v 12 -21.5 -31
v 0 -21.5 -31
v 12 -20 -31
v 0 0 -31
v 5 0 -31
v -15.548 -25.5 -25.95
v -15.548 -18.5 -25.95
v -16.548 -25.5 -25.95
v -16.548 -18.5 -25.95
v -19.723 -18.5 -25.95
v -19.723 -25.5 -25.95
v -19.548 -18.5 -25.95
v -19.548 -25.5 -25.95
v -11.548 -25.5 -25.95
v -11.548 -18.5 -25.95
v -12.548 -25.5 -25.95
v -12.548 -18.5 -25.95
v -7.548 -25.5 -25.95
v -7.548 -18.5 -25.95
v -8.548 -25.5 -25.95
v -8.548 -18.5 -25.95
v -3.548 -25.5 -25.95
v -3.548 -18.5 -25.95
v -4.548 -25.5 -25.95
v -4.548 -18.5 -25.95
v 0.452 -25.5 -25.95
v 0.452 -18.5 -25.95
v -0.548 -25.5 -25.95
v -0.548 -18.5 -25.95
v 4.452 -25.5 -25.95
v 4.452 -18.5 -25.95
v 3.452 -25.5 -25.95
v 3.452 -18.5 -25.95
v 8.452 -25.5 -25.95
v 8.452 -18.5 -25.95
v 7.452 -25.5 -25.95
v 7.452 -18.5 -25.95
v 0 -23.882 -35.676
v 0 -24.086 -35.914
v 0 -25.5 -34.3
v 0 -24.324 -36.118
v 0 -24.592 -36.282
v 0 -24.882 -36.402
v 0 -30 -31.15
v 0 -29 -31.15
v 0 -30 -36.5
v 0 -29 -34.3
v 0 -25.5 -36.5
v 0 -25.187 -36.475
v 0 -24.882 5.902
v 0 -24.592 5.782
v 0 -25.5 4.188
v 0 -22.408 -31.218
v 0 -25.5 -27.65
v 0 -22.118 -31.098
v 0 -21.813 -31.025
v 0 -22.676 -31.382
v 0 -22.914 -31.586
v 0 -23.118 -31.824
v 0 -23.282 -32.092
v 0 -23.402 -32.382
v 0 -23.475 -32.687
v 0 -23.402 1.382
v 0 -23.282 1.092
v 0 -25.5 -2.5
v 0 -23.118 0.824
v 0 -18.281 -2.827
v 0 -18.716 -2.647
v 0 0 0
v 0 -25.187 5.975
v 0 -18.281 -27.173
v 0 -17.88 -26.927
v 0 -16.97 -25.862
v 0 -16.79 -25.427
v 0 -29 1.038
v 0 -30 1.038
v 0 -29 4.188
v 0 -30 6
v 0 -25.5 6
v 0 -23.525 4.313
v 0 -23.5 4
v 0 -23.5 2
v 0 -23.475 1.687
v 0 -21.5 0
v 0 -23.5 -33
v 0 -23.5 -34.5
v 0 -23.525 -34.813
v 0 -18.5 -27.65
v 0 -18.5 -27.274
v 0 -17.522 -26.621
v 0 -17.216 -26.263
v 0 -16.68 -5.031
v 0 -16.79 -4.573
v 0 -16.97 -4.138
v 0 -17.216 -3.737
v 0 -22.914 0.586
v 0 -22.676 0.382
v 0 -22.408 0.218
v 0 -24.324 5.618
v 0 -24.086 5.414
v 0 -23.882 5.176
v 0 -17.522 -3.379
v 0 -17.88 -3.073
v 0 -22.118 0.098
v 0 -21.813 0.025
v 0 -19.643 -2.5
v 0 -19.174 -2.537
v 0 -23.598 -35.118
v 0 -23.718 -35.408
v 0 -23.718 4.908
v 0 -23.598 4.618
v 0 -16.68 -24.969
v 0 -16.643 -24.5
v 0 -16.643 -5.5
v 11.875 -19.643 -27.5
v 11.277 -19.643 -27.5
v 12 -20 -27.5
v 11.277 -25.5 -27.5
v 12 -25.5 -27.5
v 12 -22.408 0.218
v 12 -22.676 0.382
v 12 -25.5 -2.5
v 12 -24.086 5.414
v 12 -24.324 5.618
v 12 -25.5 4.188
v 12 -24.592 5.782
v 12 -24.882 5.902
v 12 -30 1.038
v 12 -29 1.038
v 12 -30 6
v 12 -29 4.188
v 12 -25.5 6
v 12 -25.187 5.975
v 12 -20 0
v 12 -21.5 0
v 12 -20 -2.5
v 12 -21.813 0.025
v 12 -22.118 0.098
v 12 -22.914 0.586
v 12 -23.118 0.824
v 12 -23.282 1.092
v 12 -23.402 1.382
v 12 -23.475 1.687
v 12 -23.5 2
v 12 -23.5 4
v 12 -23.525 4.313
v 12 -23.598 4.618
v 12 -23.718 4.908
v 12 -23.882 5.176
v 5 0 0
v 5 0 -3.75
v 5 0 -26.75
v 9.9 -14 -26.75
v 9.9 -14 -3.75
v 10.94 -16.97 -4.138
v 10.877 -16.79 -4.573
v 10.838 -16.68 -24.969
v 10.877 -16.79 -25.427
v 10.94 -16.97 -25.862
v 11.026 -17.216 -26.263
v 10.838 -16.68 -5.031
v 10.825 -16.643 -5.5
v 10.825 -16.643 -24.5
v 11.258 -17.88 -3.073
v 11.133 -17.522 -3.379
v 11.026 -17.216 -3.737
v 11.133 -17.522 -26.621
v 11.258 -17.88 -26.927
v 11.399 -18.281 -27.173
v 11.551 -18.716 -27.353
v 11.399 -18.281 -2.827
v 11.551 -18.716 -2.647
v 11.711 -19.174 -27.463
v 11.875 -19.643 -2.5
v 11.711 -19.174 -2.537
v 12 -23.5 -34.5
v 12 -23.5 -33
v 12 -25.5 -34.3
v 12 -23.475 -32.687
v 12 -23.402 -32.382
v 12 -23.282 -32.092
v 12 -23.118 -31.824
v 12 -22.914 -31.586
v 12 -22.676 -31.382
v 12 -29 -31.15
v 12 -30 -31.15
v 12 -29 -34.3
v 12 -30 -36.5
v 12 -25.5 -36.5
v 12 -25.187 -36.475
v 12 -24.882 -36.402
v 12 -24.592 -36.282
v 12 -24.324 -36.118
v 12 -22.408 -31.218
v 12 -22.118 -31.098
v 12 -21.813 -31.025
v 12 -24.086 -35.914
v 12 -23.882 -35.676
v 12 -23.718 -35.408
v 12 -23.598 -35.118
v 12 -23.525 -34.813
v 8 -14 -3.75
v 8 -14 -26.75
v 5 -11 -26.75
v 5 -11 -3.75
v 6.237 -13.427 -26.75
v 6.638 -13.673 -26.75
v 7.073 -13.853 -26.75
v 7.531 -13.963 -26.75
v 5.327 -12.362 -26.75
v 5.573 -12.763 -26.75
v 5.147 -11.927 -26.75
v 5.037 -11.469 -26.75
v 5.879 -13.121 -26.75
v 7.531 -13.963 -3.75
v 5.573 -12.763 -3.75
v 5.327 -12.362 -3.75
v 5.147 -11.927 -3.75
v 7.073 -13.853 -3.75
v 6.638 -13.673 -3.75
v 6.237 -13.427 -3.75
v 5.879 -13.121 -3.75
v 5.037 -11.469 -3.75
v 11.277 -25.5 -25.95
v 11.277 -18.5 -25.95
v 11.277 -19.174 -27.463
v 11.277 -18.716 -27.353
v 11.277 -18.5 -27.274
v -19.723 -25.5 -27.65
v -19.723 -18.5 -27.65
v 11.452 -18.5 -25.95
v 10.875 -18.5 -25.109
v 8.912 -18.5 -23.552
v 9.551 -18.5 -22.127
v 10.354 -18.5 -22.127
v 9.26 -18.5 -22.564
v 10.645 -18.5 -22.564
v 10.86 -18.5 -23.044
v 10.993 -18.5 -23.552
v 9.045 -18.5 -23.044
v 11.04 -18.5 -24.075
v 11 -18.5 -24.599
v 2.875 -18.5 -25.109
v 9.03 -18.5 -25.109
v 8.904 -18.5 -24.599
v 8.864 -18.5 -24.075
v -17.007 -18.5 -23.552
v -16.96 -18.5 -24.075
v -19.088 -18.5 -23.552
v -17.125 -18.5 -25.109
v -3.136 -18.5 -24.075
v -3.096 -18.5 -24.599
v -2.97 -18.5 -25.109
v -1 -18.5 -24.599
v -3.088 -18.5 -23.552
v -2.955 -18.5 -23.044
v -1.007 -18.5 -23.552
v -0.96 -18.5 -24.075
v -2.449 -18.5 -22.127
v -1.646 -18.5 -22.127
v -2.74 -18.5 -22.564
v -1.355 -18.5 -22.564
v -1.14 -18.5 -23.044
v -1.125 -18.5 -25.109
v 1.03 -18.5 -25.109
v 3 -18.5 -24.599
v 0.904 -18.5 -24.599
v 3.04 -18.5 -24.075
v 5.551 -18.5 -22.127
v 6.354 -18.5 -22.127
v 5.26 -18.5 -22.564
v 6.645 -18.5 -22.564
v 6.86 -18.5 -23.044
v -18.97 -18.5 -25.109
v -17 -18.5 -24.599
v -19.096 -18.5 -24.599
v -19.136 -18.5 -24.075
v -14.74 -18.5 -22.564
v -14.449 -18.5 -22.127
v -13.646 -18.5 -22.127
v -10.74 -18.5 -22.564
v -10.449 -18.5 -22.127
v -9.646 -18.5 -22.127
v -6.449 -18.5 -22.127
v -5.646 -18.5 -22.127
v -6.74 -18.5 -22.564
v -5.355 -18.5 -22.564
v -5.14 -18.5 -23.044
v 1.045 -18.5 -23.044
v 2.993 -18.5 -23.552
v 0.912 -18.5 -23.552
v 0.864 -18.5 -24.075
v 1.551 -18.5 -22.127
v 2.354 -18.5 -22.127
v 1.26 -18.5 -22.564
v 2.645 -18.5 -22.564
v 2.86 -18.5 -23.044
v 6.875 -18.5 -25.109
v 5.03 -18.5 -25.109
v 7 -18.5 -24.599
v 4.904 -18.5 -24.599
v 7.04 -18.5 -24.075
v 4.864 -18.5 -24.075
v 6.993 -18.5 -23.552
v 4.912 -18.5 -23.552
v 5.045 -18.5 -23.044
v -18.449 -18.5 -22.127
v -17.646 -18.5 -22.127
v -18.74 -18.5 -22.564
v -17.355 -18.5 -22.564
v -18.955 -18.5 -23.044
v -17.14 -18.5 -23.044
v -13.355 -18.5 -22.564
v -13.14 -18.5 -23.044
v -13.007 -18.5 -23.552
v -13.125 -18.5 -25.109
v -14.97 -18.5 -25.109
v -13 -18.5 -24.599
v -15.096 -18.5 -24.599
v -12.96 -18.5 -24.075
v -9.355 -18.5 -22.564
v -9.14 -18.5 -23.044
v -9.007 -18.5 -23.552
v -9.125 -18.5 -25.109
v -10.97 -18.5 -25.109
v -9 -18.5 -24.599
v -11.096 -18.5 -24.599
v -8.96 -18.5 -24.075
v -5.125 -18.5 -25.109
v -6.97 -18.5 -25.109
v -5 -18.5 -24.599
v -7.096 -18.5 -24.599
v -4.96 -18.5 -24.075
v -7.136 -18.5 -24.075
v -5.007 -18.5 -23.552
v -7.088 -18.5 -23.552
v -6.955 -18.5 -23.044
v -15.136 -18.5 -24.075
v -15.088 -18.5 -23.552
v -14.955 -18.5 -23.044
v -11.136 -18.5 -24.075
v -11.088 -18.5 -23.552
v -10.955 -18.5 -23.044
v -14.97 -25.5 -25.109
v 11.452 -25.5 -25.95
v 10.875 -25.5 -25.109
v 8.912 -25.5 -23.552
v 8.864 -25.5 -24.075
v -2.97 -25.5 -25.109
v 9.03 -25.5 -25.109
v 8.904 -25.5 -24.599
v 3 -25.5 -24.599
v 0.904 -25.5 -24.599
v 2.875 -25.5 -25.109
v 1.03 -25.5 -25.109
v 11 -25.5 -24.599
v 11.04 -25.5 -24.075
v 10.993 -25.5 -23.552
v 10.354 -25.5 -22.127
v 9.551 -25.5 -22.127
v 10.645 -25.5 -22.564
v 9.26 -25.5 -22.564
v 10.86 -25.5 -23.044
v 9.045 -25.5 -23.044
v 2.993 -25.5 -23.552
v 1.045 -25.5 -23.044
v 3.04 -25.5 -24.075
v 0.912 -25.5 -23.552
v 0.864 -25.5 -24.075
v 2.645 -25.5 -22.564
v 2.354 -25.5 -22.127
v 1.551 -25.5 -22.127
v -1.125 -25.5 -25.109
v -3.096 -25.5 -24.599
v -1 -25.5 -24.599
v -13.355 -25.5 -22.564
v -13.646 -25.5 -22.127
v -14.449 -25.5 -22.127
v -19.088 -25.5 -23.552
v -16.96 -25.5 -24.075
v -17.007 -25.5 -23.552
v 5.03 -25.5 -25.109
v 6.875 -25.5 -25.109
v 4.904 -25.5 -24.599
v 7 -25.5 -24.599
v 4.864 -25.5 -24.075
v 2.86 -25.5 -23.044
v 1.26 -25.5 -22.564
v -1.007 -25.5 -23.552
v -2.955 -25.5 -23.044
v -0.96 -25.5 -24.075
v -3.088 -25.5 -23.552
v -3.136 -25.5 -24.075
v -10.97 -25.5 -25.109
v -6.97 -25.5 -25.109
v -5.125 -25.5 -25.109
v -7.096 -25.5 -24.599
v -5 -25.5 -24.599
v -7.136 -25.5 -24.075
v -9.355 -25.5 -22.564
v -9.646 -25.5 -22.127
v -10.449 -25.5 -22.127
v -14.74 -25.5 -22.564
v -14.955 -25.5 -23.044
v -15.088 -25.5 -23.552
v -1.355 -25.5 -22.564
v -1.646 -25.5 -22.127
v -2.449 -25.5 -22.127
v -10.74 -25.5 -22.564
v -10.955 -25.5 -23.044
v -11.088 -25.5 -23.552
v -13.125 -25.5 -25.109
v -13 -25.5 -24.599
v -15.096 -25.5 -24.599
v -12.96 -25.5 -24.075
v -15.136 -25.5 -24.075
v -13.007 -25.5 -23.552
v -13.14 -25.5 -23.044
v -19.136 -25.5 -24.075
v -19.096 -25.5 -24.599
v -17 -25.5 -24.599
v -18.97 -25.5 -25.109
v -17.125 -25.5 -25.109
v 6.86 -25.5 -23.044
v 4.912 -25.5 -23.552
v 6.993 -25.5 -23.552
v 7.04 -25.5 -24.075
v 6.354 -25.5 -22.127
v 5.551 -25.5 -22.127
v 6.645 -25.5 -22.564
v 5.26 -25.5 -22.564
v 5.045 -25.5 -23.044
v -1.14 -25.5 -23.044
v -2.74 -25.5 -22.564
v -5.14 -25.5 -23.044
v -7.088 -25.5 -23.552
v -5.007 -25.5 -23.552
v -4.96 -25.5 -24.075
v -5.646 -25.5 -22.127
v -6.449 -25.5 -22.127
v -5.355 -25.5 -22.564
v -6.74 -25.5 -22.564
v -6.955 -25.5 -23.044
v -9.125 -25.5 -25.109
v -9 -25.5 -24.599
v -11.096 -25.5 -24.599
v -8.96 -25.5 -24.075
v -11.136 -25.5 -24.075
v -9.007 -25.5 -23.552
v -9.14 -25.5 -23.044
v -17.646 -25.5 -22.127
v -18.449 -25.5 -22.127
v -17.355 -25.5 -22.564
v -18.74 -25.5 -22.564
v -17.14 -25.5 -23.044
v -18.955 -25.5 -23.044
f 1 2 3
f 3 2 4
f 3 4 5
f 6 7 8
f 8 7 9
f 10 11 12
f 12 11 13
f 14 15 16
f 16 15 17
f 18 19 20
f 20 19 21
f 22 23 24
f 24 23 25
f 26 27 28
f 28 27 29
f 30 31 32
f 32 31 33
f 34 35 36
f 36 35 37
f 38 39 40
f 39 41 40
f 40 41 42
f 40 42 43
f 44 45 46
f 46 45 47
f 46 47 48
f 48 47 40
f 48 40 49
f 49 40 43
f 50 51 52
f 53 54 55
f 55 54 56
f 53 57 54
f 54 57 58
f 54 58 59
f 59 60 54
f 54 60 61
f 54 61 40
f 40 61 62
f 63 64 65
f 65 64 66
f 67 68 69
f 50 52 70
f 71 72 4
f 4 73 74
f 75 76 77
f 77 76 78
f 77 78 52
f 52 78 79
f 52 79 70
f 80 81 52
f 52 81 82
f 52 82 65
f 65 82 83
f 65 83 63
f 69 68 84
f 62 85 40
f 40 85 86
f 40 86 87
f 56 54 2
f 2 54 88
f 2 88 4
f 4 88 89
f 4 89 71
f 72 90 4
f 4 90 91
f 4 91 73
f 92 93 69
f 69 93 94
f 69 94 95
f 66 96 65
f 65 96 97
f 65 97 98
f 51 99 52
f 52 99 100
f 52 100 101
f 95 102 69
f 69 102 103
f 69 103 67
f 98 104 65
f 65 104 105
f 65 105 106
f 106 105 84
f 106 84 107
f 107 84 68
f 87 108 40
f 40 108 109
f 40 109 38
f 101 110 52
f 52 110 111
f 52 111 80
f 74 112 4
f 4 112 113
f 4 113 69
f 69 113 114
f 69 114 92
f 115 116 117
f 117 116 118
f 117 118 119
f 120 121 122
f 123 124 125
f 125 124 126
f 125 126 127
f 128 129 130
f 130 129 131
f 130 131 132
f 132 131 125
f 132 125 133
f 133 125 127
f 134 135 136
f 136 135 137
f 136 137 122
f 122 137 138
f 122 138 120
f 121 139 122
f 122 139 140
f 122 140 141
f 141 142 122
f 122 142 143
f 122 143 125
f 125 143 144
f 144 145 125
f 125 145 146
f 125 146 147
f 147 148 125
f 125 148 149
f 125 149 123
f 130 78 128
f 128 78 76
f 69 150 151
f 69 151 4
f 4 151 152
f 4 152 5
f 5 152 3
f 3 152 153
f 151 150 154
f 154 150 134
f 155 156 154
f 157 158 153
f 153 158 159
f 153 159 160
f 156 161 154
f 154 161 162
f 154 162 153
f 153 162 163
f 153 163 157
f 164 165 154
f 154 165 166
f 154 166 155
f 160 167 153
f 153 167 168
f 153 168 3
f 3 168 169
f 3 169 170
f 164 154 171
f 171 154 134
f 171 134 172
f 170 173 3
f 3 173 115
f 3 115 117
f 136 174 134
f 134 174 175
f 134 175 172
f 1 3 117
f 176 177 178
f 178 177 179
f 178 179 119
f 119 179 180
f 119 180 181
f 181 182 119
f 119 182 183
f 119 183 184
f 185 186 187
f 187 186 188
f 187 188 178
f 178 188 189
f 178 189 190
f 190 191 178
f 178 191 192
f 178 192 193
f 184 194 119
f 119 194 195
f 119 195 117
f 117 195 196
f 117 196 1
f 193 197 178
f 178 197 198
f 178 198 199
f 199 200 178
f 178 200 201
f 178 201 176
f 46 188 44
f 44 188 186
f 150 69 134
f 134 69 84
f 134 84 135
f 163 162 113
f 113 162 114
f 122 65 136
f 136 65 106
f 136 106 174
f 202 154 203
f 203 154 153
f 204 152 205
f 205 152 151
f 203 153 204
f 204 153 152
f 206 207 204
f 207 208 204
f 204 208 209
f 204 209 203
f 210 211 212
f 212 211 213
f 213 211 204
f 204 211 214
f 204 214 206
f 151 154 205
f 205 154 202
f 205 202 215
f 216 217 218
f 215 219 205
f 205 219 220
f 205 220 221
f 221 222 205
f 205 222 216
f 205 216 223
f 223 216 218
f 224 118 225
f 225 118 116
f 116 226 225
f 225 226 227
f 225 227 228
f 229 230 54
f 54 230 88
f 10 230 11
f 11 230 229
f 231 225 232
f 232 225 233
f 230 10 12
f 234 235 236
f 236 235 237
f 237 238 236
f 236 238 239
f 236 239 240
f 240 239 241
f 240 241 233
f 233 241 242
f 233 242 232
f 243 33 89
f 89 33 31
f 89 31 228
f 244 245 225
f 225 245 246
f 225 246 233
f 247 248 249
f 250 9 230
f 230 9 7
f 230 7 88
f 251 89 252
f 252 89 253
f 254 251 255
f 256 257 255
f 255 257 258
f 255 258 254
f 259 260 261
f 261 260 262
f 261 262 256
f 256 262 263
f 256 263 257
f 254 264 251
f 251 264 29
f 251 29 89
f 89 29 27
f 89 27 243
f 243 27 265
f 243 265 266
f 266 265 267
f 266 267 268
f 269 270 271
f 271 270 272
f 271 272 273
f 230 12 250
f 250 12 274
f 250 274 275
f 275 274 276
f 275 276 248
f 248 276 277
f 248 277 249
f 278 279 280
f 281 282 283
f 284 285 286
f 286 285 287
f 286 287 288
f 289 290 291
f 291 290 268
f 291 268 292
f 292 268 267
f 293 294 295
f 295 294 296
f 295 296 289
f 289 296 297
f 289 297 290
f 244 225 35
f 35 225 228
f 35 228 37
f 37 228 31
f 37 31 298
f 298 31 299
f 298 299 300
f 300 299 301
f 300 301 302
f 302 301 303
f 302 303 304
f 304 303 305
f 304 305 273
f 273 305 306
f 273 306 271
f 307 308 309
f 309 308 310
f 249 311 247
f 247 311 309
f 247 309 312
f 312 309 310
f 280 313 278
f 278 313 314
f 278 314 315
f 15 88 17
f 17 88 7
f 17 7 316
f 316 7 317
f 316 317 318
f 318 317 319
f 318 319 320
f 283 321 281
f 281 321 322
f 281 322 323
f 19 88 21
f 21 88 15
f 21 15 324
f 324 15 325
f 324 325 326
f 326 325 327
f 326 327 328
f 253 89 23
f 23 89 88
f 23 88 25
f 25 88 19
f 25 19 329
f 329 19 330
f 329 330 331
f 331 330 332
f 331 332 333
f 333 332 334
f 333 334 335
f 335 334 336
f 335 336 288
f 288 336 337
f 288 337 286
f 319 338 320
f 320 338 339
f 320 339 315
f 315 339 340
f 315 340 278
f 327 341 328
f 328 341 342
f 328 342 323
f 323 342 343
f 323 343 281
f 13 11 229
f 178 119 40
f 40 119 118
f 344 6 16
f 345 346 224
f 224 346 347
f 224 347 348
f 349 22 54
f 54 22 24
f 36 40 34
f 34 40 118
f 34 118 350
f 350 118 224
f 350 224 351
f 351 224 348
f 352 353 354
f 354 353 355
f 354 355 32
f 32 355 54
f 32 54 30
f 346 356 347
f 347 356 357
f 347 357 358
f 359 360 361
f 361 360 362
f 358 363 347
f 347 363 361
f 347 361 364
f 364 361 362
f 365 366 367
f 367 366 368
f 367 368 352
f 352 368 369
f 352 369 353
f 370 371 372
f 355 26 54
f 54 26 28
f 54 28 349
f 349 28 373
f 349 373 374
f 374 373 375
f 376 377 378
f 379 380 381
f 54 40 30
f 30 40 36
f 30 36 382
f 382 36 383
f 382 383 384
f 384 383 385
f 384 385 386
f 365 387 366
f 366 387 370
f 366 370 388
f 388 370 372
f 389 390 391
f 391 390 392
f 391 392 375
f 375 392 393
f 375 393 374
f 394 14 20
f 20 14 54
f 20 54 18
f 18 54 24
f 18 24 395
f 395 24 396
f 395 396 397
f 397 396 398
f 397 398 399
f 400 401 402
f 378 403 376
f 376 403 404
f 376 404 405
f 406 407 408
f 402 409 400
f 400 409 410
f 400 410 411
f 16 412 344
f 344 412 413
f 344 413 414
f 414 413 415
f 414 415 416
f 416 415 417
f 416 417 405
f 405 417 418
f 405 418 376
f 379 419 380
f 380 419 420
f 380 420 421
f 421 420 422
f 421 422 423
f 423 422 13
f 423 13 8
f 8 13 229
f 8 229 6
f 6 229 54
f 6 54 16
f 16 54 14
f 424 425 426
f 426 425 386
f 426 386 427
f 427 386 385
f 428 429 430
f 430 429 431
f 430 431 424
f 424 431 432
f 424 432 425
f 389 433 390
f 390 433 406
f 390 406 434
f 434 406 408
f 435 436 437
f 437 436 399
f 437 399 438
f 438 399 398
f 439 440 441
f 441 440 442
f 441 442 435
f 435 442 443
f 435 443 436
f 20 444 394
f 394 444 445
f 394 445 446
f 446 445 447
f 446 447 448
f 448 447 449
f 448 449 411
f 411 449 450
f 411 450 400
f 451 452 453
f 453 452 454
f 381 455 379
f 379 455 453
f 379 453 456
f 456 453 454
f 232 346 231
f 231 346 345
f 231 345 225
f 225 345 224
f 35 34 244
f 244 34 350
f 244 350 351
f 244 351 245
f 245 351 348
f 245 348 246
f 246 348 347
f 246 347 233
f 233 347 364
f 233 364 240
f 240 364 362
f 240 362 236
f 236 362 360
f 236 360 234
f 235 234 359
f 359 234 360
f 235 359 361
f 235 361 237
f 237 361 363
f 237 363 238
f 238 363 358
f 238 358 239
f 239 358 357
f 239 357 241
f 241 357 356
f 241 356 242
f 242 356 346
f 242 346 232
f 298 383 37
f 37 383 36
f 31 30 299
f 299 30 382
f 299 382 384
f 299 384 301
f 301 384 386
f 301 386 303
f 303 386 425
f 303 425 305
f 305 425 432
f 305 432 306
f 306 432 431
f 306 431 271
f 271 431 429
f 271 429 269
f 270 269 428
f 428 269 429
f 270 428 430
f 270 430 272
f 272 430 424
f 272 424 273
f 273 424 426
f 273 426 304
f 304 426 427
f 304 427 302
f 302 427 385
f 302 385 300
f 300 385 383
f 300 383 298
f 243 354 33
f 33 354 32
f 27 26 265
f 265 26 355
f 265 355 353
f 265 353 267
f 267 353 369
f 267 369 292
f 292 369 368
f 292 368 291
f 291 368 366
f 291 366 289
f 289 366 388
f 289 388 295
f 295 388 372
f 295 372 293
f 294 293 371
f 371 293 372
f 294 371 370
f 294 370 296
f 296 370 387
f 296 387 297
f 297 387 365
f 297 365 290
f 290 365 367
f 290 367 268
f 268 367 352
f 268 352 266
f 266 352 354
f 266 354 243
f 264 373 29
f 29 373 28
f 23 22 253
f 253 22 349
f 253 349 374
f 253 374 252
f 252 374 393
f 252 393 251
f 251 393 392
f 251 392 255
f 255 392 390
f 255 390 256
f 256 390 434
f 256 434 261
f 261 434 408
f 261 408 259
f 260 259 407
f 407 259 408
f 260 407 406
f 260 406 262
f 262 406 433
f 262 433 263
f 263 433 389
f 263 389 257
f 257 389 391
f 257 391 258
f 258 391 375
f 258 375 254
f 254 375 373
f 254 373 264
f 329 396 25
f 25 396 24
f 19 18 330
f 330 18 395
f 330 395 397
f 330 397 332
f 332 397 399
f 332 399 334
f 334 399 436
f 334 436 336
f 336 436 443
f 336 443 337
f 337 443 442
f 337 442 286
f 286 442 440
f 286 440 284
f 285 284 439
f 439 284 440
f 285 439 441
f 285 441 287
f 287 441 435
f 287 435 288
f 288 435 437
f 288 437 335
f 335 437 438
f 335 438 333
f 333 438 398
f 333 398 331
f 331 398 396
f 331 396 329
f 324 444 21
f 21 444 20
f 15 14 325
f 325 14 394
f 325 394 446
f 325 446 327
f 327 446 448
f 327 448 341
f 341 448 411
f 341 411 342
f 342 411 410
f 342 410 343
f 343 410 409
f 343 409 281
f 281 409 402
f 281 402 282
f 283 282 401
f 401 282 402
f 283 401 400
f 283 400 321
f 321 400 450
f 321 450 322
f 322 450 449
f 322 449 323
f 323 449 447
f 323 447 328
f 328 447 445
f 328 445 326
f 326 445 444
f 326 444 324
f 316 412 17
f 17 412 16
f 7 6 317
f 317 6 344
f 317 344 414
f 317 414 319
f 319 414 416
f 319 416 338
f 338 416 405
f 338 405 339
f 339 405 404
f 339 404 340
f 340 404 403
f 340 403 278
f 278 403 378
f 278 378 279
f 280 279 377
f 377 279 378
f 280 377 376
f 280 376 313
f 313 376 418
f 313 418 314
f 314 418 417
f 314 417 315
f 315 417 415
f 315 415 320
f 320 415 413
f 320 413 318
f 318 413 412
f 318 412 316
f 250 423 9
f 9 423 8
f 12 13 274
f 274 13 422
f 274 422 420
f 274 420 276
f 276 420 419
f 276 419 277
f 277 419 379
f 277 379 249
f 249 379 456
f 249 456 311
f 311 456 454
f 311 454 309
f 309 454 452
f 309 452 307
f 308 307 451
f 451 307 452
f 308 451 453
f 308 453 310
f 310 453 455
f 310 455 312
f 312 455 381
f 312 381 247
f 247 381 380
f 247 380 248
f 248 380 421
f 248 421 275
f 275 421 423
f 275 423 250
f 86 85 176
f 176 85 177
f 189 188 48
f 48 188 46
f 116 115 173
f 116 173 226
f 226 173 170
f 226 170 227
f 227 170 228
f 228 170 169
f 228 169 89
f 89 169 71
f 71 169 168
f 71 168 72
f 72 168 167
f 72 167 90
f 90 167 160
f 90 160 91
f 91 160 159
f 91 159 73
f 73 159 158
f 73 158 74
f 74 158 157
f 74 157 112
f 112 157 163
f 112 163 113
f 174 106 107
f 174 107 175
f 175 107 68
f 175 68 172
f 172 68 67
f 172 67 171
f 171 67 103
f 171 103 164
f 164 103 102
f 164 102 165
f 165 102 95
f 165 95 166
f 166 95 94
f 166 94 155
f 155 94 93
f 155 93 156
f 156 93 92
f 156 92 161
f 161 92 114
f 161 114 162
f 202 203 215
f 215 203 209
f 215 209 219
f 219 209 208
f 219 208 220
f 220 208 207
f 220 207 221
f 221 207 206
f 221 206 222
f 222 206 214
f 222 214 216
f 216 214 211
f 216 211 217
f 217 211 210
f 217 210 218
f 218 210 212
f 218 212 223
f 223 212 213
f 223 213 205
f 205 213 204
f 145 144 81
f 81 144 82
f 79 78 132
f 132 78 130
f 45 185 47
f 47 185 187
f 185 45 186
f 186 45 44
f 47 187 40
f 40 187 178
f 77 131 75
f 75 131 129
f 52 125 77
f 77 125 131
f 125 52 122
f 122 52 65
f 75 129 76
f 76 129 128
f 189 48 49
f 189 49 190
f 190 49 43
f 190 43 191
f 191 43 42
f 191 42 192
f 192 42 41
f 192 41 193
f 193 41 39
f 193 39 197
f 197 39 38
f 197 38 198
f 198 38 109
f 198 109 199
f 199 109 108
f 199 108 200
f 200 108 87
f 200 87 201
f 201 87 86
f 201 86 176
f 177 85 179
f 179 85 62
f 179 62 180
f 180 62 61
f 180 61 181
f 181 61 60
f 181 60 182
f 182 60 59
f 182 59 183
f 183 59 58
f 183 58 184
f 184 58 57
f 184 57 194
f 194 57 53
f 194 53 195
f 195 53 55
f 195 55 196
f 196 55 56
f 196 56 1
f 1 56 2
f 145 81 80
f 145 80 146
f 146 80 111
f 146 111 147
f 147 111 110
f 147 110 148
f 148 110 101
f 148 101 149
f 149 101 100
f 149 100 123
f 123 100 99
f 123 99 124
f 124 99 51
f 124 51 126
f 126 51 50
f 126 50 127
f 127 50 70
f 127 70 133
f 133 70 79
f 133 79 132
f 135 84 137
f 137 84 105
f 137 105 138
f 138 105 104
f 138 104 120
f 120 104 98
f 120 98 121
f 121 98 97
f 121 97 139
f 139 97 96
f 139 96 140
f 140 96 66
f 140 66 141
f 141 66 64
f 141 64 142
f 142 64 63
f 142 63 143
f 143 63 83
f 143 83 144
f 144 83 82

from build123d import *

# Parameters (mm, degrees)
BOSS_EXTRUDE1_DEPTH = 31
SKETCH4_W           = 25
SKETCH4_H           = 15
CUT_EXTRUDE2_DEPTH  = 25
CUT_EXTRUDE4_DEPTH  = 11.5
SKETCH7_W           = 31
SKETCH7_H           = 1.7
BOSS_EXTRUDE3_DEPTH = 7
BOSS_EXTRUDE4_DEPTH = 7
LPATTERN1_COUNT     = 8
LPATTERN1_PITCH     = 4
SKETCH11_W          = 12
SKETCH11_H          = 6.5
BOSS_EXTRUDE5_DEPTH = 5.5
FILLET5_R           = 3
SKETCH12_W          = 12
SKETCH12_H          = 6.5
BOSS_EXTRUDE6_DEPTH = 6
CUT_EXTRUDE5_DEPTH  = 12
FILLET6_R           = 2


with BuildPart() as part:
    # Sketch1 → Boss-Extrude1 (new body)
    with BuildSketch(Plane.XY):
        Polygon((0, 0), (0, -30), (12, -30), (12, -20), (5, 0), align=None)
    extrude(amount=-BOSS_EXTRUDE1_DEPTH)

    # Sketch4 → Cut-Extrude2 (cut)
    with BuildSketch(Plane.ZY):
        with Locations((-15, -24.143402944)):
            Rectangle(SKETCH4_W, SKETCH4_H)
    extrude(amount=-CUT_EXTRUDE2_DEPTH, mode=Mode.SUBTRACT)

    # Sketch6 → Cut-Extrude4 (cut, symmetric)
    with BuildSketch(Plane.XY.offset(-15.25)):
        Polygon((5, 0), (5, -14), (9.9, -14), align=None)
    extrude(amount=CUT_EXTRUDE4_DEPTH, both=True, mode=Mode.SUBTRACT)

    # Sketch7 → Boss-Extrude3 (add)
    with BuildSketch(Plane(origin=(0, -25.5, 0), x_dir=(1, 0, 0), z_dir=(0, 1, 0))):
        with Locations((-4.2231607, 26.8)):
            Rectangle(SKETCH7_W, SKETCH7_H)
    extrude(amount=BOSS_EXTRUDE3_DEPTH)

    # Sketch10 → Boss-Extrude4 (add)
    with BuildSketch(Plane(origin=(0, -25.5, 0), x_dir=(1, 0, 0), z_dir=(0, 1, 0))):
        with BuildLine():
            Line((10.353586314, 22.126900466), (9.550714712, 22.126900466))
            ThreePointArc((9.550714712, 22.126900466), (8.911730102, 23.551984668), (9.029666421, 25.109308443))
            ThreePointArc((9.029666421, 25.109308443), (8.752067329, 25.53731984), (8.452150513, 25.95))
            Line((8.452150513, 25.95), (11.452150513, 25.95))
            ThreePointArc((11.452150513, 25.95), (11.152233697, 25.53731984), (10.874634605, 25.109308443))
            ThreePointArc((10.874634605, 25.109308443), (10.992570924, 23.551984668), (10.353586314, 22.126900466))
        make_face()
    boss_extrude4 = extrude(amount=BOSS_EXTRUDE4_DEPTH)

    # LPattern1: Boss-Extrude4 ×8
    with Locations(*[(-i * LPATTERN1_PITCH, 0, 0) for i in range(1, LPATTERN1_COUNT)]):
        add(boss_extrude4)

    # Sketch11 → Boss-Extrude5 (add)
    with BuildSketch(Plane(origin=(0, 0, -31), x_dir=(-1, 0, 0), z_dir=(0, 0, -1))):
        with Locations((-6, -26.75)):
            Rectangle(SKETCH11_W, SKETCH11_H)
    extrude(amount=BOSS_EXTRUDE5_DEPTH)

    # Fillet5
    # the kernel refuses this fillet: 3 mm, written as the material it adds along each edge
    with BuildSketch(Plane(origin=(5, -14, -34.25), x_dir=(0, 1, 0), z_dir=(0, 0, 1))) as fillet5_piece_1_section:
        with BuildLine():
            CenterArc((FILLET5_R, -FILLET5_R), FILLET5_R, 90, 90)
            Line((0, -FILLET5_R), (0, 0))
            Line((0, 0), (FILLET5_R, 0))
        make_face()
    fillet5_piece_1 = extrude(amount=38, mode=Mode.PRIVATE)
    fillet5_piece_1 = split(fillet5_piece_1, bisect_by=Plane(origin=(5.670103817, -13.329896183, -31), z_dir=(0, 0, 1)), keep=Keep.TOP, mode=Mode.PRIVATE)
    fillet5_piece_1 = split(fillet5_piece_1, bisect_by=Plane(origin=(5.670103817, -13.329896183, 0), z_dir=(0, 0, -1)), keep=Keep.TOP, mode=Mode.PRIVATE)
    add(fillet5_piece_1)
    with BuildSketch(Plane(origin=(0, -16.643402944, -2.5), x_dir=(0, -1, 0), z_dir=(1, 0, 0))) as fillet5_piece_2_section:
        with BuildLine():
            CenterArc((FILLET5_R, FILLET5_R), FILLET5_R, 180, 90)
            Line((0, FILLET5_R), (0, 0))
            Line((0, 0), (FILLET5_R, 0))
        make_face()
    fillet5_piece_2 = extrude(amount=18.32519103, mode=Mode.PRIVATE)
    fillet5_piece_2 = split(fillet5_piece_2, bisect_by=Plane(origin=(10.459559167, -15.598740478, -3.164212855), z_dir=(-0.9438583563660173, -0.33035042472810633, 0)), keep=Keep.TOP, mode=Mode.PRIVATE)
    add(fillet5_piece_2)
    with BuildSketch(Plane(origin=(0, -16.643402944, -27.5), x_dir=(0, 0, 1), z_dir=(1, 0, 0))) as fillet5_piece_3_section:
        with BuildLine():
            CenterArc((FILLET5_R, FILLET5_R), FILLET5_R, 180, 90)
            Line((0, FILLET5_R), (0, 0))
            Line((0, 0), (FILLET5_R, 0))
        make_face()
    fillet5_piece_3 = extrude(amount=18.32519103, mode=Mode.PRIVATE)
    fillet5_piece_3 = split(fillet5_piece_3, bisect_by=Plane(origin=(10.435387917, -15.529679764, -26.806522223), z_dir=(-0.9438583563660173, -0.33035042472810633, 0)), keep=Keep.TOP, mode=Mode.PRIVATE)
    add(fillet5_piece_3)

    # Sketch12 → Boss-Extrude6 (add)
    with BuildSketch(Plane.XY):
        with Locations((6, -26.75)):
            Rectangle(SKETCH12_W, SKETCH12_H)
    extrude(amount=BOSS_EXTRUDE6_DEPTH)

    # Sketch13 → Cut-Extrude5 (cut)
    with BuildSketch(Plane.ZY):
        Polygon((-34.3, -25.5), (-27.5, -25.5), (-27.5, -32.069121633), (-31.15, -32.069121633), (-31.15, -29), (-34.3, -29), align=None)
        Polygon((1.037837299, -29), (4.187837299, -29), (4.187837299, -25.5), (-2.612162701, -25.5), (-2.612162701, -32.069121633), (1.037837299, -32.069121633), align=None)
    extrude(amount=-CUT_EXTRUDE5_DEPTH, mode=Mode.SUBTRACT)

    # Fillet6
    fillet6_edges = [part.edges().sort_by_distance(p)[0] for p in [
        (6, -23.5, -31),
        (6, -23.5, -36.5),
        (6, -23.5, 0),
        (6, -23.5, 6),
    ]]
    fillet(fillet6_edges, radius=FILLET6_R)


solid = part.part
